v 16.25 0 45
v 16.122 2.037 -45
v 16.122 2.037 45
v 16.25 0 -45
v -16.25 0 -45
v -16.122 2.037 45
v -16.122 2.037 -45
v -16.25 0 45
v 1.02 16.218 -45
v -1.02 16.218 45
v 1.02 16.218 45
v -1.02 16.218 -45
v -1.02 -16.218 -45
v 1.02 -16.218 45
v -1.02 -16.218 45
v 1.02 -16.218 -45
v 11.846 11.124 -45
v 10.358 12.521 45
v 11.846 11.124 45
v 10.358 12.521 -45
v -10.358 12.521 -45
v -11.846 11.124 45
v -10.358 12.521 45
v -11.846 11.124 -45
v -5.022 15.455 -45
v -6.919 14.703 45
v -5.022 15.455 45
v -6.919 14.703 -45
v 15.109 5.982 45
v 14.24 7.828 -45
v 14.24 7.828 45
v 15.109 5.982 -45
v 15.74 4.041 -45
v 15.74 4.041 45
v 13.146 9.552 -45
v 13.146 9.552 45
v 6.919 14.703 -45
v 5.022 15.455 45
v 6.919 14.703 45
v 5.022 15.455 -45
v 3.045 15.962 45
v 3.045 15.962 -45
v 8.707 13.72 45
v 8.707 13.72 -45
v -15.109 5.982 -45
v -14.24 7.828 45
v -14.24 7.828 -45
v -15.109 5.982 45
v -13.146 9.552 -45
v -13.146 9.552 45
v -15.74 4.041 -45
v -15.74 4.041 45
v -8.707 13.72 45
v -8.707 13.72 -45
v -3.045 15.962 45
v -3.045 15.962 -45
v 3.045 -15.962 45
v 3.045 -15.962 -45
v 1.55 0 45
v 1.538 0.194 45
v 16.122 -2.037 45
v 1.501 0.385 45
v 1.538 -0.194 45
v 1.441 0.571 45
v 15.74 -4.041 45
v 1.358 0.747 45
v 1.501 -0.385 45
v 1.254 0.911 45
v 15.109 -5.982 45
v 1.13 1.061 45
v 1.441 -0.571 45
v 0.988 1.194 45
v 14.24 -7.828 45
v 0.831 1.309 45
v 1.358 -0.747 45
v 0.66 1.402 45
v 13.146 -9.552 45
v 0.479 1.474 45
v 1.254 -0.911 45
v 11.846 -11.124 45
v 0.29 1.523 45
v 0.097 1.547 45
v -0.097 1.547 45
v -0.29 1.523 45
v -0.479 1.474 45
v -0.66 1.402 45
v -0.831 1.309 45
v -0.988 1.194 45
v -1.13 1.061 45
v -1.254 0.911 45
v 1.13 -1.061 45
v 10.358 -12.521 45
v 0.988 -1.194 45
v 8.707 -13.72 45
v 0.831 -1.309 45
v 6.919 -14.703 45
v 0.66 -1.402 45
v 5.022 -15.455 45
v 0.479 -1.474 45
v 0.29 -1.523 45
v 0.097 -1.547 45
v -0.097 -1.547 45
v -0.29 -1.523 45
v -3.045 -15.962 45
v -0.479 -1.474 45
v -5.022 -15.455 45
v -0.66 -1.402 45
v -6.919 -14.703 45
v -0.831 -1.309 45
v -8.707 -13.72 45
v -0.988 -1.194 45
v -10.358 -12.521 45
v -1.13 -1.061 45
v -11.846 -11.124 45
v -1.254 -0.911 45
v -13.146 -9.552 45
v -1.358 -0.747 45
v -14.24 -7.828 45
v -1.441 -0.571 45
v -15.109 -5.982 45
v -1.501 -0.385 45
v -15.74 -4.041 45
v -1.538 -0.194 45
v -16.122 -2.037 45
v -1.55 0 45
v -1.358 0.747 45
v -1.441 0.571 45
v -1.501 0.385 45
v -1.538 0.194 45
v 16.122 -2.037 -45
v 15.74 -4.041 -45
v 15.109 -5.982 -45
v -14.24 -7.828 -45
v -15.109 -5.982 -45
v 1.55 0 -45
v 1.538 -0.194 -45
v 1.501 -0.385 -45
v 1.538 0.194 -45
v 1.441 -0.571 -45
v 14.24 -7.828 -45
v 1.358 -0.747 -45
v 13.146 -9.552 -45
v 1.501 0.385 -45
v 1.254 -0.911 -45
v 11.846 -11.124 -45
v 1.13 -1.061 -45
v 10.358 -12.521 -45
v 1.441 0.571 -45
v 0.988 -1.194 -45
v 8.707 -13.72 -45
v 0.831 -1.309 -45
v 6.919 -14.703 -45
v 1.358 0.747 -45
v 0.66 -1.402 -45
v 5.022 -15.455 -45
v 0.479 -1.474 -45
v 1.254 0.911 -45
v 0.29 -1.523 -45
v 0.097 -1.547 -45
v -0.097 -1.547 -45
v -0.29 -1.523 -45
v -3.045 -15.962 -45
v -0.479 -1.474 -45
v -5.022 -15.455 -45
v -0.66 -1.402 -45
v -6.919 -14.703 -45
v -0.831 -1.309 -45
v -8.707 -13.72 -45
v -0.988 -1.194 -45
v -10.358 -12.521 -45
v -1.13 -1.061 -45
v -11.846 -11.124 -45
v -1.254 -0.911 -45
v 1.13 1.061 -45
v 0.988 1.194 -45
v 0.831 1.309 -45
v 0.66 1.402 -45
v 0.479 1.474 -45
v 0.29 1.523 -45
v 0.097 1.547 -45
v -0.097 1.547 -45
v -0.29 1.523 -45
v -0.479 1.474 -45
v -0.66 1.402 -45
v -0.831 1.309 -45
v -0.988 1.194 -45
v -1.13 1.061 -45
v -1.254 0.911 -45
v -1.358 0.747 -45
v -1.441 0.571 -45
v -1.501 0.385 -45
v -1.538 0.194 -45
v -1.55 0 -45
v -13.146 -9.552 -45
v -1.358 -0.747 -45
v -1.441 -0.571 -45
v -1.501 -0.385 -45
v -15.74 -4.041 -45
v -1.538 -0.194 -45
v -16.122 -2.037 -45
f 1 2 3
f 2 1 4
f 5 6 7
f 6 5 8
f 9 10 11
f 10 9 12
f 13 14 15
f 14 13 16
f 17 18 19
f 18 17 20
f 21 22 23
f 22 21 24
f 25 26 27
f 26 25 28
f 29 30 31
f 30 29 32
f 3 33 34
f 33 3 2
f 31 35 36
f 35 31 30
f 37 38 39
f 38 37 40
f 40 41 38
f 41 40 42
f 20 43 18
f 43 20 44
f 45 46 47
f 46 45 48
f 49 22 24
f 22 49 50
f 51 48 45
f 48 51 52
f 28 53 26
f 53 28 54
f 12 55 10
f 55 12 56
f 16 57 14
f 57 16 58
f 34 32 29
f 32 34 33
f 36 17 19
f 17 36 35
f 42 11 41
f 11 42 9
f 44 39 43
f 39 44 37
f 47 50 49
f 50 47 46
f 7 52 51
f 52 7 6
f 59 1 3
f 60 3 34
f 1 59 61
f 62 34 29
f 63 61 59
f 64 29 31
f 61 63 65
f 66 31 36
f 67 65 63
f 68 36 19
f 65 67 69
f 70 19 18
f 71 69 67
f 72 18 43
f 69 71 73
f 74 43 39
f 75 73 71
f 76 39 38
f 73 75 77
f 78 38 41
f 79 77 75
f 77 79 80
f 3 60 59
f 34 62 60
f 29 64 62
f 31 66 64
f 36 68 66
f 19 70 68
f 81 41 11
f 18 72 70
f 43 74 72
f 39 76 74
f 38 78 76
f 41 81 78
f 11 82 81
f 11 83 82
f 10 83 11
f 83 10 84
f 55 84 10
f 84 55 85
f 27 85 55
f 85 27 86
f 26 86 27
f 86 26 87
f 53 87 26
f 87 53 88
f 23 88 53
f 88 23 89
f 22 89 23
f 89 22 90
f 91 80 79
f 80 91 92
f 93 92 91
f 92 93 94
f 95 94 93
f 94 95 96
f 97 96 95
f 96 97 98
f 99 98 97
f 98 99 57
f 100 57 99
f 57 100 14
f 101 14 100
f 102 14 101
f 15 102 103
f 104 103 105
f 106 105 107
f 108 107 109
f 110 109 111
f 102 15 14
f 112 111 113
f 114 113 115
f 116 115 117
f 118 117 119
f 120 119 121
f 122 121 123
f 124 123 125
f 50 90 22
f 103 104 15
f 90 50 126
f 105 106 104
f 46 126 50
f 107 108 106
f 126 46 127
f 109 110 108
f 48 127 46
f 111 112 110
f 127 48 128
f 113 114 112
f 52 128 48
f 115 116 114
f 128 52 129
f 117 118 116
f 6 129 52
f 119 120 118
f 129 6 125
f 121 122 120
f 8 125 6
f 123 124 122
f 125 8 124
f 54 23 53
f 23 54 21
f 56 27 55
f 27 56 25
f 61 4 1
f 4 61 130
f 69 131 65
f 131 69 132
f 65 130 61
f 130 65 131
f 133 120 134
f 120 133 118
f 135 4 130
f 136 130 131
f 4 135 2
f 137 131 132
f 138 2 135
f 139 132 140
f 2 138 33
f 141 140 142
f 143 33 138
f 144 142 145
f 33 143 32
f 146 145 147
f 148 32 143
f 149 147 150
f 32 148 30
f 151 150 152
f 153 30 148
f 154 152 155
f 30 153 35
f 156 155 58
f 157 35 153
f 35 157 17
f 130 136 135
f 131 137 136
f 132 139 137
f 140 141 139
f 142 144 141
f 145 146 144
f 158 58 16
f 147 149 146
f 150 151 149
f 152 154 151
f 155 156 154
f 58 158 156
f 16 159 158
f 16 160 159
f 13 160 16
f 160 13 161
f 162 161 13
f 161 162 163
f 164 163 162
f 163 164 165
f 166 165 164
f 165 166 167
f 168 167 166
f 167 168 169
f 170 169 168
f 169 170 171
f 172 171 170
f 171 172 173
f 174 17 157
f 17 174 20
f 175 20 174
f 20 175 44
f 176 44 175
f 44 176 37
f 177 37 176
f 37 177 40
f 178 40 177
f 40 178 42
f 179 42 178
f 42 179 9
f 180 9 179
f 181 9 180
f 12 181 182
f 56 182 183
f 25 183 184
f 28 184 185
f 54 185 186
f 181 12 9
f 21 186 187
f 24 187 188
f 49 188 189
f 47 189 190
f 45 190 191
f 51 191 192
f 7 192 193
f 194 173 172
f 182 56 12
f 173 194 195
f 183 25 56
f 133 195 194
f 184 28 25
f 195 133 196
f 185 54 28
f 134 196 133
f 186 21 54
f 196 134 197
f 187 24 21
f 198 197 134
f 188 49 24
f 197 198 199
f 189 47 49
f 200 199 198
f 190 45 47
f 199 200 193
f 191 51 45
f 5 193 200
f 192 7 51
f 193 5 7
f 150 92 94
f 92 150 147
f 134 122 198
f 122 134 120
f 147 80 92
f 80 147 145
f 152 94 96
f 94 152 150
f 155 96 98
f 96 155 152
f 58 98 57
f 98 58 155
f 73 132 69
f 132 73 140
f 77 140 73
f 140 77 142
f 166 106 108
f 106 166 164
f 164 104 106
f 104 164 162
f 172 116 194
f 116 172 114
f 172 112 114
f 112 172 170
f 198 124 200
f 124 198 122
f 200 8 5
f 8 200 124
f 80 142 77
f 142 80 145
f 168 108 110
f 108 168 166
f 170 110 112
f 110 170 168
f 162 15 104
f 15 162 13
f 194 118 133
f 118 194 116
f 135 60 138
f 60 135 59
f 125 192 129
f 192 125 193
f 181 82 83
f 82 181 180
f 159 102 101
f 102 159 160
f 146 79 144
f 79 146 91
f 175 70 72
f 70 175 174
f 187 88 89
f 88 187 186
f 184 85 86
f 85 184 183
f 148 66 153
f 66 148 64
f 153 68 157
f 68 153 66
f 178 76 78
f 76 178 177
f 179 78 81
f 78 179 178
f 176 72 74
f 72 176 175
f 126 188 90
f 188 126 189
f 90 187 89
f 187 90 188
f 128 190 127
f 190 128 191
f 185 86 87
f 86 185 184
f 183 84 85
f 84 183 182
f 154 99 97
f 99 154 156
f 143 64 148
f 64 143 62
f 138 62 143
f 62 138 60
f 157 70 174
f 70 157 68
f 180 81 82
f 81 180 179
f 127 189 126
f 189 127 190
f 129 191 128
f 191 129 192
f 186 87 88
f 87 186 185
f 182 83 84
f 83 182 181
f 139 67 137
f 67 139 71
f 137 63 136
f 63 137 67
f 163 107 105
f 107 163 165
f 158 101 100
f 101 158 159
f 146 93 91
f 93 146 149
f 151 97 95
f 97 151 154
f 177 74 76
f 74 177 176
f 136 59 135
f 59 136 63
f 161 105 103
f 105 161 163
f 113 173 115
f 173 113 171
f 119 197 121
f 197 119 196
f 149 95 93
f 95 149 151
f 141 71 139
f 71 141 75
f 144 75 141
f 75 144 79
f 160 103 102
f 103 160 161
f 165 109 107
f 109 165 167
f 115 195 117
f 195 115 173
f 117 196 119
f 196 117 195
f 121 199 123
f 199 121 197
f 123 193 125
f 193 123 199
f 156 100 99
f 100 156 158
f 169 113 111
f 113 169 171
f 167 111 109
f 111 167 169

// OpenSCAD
$fn = 50;


difference() {
	union() {
		translate(v = [0, 0, -45.0000000000]) {
			cylinder(h = 90, r = 16.2500000000);
		}
	}
	union() {
		translate(v = [0, 0, -100.0000000000]) {
			cylinder(h = 200, r = 1.5500000000);
		}
	}
}
